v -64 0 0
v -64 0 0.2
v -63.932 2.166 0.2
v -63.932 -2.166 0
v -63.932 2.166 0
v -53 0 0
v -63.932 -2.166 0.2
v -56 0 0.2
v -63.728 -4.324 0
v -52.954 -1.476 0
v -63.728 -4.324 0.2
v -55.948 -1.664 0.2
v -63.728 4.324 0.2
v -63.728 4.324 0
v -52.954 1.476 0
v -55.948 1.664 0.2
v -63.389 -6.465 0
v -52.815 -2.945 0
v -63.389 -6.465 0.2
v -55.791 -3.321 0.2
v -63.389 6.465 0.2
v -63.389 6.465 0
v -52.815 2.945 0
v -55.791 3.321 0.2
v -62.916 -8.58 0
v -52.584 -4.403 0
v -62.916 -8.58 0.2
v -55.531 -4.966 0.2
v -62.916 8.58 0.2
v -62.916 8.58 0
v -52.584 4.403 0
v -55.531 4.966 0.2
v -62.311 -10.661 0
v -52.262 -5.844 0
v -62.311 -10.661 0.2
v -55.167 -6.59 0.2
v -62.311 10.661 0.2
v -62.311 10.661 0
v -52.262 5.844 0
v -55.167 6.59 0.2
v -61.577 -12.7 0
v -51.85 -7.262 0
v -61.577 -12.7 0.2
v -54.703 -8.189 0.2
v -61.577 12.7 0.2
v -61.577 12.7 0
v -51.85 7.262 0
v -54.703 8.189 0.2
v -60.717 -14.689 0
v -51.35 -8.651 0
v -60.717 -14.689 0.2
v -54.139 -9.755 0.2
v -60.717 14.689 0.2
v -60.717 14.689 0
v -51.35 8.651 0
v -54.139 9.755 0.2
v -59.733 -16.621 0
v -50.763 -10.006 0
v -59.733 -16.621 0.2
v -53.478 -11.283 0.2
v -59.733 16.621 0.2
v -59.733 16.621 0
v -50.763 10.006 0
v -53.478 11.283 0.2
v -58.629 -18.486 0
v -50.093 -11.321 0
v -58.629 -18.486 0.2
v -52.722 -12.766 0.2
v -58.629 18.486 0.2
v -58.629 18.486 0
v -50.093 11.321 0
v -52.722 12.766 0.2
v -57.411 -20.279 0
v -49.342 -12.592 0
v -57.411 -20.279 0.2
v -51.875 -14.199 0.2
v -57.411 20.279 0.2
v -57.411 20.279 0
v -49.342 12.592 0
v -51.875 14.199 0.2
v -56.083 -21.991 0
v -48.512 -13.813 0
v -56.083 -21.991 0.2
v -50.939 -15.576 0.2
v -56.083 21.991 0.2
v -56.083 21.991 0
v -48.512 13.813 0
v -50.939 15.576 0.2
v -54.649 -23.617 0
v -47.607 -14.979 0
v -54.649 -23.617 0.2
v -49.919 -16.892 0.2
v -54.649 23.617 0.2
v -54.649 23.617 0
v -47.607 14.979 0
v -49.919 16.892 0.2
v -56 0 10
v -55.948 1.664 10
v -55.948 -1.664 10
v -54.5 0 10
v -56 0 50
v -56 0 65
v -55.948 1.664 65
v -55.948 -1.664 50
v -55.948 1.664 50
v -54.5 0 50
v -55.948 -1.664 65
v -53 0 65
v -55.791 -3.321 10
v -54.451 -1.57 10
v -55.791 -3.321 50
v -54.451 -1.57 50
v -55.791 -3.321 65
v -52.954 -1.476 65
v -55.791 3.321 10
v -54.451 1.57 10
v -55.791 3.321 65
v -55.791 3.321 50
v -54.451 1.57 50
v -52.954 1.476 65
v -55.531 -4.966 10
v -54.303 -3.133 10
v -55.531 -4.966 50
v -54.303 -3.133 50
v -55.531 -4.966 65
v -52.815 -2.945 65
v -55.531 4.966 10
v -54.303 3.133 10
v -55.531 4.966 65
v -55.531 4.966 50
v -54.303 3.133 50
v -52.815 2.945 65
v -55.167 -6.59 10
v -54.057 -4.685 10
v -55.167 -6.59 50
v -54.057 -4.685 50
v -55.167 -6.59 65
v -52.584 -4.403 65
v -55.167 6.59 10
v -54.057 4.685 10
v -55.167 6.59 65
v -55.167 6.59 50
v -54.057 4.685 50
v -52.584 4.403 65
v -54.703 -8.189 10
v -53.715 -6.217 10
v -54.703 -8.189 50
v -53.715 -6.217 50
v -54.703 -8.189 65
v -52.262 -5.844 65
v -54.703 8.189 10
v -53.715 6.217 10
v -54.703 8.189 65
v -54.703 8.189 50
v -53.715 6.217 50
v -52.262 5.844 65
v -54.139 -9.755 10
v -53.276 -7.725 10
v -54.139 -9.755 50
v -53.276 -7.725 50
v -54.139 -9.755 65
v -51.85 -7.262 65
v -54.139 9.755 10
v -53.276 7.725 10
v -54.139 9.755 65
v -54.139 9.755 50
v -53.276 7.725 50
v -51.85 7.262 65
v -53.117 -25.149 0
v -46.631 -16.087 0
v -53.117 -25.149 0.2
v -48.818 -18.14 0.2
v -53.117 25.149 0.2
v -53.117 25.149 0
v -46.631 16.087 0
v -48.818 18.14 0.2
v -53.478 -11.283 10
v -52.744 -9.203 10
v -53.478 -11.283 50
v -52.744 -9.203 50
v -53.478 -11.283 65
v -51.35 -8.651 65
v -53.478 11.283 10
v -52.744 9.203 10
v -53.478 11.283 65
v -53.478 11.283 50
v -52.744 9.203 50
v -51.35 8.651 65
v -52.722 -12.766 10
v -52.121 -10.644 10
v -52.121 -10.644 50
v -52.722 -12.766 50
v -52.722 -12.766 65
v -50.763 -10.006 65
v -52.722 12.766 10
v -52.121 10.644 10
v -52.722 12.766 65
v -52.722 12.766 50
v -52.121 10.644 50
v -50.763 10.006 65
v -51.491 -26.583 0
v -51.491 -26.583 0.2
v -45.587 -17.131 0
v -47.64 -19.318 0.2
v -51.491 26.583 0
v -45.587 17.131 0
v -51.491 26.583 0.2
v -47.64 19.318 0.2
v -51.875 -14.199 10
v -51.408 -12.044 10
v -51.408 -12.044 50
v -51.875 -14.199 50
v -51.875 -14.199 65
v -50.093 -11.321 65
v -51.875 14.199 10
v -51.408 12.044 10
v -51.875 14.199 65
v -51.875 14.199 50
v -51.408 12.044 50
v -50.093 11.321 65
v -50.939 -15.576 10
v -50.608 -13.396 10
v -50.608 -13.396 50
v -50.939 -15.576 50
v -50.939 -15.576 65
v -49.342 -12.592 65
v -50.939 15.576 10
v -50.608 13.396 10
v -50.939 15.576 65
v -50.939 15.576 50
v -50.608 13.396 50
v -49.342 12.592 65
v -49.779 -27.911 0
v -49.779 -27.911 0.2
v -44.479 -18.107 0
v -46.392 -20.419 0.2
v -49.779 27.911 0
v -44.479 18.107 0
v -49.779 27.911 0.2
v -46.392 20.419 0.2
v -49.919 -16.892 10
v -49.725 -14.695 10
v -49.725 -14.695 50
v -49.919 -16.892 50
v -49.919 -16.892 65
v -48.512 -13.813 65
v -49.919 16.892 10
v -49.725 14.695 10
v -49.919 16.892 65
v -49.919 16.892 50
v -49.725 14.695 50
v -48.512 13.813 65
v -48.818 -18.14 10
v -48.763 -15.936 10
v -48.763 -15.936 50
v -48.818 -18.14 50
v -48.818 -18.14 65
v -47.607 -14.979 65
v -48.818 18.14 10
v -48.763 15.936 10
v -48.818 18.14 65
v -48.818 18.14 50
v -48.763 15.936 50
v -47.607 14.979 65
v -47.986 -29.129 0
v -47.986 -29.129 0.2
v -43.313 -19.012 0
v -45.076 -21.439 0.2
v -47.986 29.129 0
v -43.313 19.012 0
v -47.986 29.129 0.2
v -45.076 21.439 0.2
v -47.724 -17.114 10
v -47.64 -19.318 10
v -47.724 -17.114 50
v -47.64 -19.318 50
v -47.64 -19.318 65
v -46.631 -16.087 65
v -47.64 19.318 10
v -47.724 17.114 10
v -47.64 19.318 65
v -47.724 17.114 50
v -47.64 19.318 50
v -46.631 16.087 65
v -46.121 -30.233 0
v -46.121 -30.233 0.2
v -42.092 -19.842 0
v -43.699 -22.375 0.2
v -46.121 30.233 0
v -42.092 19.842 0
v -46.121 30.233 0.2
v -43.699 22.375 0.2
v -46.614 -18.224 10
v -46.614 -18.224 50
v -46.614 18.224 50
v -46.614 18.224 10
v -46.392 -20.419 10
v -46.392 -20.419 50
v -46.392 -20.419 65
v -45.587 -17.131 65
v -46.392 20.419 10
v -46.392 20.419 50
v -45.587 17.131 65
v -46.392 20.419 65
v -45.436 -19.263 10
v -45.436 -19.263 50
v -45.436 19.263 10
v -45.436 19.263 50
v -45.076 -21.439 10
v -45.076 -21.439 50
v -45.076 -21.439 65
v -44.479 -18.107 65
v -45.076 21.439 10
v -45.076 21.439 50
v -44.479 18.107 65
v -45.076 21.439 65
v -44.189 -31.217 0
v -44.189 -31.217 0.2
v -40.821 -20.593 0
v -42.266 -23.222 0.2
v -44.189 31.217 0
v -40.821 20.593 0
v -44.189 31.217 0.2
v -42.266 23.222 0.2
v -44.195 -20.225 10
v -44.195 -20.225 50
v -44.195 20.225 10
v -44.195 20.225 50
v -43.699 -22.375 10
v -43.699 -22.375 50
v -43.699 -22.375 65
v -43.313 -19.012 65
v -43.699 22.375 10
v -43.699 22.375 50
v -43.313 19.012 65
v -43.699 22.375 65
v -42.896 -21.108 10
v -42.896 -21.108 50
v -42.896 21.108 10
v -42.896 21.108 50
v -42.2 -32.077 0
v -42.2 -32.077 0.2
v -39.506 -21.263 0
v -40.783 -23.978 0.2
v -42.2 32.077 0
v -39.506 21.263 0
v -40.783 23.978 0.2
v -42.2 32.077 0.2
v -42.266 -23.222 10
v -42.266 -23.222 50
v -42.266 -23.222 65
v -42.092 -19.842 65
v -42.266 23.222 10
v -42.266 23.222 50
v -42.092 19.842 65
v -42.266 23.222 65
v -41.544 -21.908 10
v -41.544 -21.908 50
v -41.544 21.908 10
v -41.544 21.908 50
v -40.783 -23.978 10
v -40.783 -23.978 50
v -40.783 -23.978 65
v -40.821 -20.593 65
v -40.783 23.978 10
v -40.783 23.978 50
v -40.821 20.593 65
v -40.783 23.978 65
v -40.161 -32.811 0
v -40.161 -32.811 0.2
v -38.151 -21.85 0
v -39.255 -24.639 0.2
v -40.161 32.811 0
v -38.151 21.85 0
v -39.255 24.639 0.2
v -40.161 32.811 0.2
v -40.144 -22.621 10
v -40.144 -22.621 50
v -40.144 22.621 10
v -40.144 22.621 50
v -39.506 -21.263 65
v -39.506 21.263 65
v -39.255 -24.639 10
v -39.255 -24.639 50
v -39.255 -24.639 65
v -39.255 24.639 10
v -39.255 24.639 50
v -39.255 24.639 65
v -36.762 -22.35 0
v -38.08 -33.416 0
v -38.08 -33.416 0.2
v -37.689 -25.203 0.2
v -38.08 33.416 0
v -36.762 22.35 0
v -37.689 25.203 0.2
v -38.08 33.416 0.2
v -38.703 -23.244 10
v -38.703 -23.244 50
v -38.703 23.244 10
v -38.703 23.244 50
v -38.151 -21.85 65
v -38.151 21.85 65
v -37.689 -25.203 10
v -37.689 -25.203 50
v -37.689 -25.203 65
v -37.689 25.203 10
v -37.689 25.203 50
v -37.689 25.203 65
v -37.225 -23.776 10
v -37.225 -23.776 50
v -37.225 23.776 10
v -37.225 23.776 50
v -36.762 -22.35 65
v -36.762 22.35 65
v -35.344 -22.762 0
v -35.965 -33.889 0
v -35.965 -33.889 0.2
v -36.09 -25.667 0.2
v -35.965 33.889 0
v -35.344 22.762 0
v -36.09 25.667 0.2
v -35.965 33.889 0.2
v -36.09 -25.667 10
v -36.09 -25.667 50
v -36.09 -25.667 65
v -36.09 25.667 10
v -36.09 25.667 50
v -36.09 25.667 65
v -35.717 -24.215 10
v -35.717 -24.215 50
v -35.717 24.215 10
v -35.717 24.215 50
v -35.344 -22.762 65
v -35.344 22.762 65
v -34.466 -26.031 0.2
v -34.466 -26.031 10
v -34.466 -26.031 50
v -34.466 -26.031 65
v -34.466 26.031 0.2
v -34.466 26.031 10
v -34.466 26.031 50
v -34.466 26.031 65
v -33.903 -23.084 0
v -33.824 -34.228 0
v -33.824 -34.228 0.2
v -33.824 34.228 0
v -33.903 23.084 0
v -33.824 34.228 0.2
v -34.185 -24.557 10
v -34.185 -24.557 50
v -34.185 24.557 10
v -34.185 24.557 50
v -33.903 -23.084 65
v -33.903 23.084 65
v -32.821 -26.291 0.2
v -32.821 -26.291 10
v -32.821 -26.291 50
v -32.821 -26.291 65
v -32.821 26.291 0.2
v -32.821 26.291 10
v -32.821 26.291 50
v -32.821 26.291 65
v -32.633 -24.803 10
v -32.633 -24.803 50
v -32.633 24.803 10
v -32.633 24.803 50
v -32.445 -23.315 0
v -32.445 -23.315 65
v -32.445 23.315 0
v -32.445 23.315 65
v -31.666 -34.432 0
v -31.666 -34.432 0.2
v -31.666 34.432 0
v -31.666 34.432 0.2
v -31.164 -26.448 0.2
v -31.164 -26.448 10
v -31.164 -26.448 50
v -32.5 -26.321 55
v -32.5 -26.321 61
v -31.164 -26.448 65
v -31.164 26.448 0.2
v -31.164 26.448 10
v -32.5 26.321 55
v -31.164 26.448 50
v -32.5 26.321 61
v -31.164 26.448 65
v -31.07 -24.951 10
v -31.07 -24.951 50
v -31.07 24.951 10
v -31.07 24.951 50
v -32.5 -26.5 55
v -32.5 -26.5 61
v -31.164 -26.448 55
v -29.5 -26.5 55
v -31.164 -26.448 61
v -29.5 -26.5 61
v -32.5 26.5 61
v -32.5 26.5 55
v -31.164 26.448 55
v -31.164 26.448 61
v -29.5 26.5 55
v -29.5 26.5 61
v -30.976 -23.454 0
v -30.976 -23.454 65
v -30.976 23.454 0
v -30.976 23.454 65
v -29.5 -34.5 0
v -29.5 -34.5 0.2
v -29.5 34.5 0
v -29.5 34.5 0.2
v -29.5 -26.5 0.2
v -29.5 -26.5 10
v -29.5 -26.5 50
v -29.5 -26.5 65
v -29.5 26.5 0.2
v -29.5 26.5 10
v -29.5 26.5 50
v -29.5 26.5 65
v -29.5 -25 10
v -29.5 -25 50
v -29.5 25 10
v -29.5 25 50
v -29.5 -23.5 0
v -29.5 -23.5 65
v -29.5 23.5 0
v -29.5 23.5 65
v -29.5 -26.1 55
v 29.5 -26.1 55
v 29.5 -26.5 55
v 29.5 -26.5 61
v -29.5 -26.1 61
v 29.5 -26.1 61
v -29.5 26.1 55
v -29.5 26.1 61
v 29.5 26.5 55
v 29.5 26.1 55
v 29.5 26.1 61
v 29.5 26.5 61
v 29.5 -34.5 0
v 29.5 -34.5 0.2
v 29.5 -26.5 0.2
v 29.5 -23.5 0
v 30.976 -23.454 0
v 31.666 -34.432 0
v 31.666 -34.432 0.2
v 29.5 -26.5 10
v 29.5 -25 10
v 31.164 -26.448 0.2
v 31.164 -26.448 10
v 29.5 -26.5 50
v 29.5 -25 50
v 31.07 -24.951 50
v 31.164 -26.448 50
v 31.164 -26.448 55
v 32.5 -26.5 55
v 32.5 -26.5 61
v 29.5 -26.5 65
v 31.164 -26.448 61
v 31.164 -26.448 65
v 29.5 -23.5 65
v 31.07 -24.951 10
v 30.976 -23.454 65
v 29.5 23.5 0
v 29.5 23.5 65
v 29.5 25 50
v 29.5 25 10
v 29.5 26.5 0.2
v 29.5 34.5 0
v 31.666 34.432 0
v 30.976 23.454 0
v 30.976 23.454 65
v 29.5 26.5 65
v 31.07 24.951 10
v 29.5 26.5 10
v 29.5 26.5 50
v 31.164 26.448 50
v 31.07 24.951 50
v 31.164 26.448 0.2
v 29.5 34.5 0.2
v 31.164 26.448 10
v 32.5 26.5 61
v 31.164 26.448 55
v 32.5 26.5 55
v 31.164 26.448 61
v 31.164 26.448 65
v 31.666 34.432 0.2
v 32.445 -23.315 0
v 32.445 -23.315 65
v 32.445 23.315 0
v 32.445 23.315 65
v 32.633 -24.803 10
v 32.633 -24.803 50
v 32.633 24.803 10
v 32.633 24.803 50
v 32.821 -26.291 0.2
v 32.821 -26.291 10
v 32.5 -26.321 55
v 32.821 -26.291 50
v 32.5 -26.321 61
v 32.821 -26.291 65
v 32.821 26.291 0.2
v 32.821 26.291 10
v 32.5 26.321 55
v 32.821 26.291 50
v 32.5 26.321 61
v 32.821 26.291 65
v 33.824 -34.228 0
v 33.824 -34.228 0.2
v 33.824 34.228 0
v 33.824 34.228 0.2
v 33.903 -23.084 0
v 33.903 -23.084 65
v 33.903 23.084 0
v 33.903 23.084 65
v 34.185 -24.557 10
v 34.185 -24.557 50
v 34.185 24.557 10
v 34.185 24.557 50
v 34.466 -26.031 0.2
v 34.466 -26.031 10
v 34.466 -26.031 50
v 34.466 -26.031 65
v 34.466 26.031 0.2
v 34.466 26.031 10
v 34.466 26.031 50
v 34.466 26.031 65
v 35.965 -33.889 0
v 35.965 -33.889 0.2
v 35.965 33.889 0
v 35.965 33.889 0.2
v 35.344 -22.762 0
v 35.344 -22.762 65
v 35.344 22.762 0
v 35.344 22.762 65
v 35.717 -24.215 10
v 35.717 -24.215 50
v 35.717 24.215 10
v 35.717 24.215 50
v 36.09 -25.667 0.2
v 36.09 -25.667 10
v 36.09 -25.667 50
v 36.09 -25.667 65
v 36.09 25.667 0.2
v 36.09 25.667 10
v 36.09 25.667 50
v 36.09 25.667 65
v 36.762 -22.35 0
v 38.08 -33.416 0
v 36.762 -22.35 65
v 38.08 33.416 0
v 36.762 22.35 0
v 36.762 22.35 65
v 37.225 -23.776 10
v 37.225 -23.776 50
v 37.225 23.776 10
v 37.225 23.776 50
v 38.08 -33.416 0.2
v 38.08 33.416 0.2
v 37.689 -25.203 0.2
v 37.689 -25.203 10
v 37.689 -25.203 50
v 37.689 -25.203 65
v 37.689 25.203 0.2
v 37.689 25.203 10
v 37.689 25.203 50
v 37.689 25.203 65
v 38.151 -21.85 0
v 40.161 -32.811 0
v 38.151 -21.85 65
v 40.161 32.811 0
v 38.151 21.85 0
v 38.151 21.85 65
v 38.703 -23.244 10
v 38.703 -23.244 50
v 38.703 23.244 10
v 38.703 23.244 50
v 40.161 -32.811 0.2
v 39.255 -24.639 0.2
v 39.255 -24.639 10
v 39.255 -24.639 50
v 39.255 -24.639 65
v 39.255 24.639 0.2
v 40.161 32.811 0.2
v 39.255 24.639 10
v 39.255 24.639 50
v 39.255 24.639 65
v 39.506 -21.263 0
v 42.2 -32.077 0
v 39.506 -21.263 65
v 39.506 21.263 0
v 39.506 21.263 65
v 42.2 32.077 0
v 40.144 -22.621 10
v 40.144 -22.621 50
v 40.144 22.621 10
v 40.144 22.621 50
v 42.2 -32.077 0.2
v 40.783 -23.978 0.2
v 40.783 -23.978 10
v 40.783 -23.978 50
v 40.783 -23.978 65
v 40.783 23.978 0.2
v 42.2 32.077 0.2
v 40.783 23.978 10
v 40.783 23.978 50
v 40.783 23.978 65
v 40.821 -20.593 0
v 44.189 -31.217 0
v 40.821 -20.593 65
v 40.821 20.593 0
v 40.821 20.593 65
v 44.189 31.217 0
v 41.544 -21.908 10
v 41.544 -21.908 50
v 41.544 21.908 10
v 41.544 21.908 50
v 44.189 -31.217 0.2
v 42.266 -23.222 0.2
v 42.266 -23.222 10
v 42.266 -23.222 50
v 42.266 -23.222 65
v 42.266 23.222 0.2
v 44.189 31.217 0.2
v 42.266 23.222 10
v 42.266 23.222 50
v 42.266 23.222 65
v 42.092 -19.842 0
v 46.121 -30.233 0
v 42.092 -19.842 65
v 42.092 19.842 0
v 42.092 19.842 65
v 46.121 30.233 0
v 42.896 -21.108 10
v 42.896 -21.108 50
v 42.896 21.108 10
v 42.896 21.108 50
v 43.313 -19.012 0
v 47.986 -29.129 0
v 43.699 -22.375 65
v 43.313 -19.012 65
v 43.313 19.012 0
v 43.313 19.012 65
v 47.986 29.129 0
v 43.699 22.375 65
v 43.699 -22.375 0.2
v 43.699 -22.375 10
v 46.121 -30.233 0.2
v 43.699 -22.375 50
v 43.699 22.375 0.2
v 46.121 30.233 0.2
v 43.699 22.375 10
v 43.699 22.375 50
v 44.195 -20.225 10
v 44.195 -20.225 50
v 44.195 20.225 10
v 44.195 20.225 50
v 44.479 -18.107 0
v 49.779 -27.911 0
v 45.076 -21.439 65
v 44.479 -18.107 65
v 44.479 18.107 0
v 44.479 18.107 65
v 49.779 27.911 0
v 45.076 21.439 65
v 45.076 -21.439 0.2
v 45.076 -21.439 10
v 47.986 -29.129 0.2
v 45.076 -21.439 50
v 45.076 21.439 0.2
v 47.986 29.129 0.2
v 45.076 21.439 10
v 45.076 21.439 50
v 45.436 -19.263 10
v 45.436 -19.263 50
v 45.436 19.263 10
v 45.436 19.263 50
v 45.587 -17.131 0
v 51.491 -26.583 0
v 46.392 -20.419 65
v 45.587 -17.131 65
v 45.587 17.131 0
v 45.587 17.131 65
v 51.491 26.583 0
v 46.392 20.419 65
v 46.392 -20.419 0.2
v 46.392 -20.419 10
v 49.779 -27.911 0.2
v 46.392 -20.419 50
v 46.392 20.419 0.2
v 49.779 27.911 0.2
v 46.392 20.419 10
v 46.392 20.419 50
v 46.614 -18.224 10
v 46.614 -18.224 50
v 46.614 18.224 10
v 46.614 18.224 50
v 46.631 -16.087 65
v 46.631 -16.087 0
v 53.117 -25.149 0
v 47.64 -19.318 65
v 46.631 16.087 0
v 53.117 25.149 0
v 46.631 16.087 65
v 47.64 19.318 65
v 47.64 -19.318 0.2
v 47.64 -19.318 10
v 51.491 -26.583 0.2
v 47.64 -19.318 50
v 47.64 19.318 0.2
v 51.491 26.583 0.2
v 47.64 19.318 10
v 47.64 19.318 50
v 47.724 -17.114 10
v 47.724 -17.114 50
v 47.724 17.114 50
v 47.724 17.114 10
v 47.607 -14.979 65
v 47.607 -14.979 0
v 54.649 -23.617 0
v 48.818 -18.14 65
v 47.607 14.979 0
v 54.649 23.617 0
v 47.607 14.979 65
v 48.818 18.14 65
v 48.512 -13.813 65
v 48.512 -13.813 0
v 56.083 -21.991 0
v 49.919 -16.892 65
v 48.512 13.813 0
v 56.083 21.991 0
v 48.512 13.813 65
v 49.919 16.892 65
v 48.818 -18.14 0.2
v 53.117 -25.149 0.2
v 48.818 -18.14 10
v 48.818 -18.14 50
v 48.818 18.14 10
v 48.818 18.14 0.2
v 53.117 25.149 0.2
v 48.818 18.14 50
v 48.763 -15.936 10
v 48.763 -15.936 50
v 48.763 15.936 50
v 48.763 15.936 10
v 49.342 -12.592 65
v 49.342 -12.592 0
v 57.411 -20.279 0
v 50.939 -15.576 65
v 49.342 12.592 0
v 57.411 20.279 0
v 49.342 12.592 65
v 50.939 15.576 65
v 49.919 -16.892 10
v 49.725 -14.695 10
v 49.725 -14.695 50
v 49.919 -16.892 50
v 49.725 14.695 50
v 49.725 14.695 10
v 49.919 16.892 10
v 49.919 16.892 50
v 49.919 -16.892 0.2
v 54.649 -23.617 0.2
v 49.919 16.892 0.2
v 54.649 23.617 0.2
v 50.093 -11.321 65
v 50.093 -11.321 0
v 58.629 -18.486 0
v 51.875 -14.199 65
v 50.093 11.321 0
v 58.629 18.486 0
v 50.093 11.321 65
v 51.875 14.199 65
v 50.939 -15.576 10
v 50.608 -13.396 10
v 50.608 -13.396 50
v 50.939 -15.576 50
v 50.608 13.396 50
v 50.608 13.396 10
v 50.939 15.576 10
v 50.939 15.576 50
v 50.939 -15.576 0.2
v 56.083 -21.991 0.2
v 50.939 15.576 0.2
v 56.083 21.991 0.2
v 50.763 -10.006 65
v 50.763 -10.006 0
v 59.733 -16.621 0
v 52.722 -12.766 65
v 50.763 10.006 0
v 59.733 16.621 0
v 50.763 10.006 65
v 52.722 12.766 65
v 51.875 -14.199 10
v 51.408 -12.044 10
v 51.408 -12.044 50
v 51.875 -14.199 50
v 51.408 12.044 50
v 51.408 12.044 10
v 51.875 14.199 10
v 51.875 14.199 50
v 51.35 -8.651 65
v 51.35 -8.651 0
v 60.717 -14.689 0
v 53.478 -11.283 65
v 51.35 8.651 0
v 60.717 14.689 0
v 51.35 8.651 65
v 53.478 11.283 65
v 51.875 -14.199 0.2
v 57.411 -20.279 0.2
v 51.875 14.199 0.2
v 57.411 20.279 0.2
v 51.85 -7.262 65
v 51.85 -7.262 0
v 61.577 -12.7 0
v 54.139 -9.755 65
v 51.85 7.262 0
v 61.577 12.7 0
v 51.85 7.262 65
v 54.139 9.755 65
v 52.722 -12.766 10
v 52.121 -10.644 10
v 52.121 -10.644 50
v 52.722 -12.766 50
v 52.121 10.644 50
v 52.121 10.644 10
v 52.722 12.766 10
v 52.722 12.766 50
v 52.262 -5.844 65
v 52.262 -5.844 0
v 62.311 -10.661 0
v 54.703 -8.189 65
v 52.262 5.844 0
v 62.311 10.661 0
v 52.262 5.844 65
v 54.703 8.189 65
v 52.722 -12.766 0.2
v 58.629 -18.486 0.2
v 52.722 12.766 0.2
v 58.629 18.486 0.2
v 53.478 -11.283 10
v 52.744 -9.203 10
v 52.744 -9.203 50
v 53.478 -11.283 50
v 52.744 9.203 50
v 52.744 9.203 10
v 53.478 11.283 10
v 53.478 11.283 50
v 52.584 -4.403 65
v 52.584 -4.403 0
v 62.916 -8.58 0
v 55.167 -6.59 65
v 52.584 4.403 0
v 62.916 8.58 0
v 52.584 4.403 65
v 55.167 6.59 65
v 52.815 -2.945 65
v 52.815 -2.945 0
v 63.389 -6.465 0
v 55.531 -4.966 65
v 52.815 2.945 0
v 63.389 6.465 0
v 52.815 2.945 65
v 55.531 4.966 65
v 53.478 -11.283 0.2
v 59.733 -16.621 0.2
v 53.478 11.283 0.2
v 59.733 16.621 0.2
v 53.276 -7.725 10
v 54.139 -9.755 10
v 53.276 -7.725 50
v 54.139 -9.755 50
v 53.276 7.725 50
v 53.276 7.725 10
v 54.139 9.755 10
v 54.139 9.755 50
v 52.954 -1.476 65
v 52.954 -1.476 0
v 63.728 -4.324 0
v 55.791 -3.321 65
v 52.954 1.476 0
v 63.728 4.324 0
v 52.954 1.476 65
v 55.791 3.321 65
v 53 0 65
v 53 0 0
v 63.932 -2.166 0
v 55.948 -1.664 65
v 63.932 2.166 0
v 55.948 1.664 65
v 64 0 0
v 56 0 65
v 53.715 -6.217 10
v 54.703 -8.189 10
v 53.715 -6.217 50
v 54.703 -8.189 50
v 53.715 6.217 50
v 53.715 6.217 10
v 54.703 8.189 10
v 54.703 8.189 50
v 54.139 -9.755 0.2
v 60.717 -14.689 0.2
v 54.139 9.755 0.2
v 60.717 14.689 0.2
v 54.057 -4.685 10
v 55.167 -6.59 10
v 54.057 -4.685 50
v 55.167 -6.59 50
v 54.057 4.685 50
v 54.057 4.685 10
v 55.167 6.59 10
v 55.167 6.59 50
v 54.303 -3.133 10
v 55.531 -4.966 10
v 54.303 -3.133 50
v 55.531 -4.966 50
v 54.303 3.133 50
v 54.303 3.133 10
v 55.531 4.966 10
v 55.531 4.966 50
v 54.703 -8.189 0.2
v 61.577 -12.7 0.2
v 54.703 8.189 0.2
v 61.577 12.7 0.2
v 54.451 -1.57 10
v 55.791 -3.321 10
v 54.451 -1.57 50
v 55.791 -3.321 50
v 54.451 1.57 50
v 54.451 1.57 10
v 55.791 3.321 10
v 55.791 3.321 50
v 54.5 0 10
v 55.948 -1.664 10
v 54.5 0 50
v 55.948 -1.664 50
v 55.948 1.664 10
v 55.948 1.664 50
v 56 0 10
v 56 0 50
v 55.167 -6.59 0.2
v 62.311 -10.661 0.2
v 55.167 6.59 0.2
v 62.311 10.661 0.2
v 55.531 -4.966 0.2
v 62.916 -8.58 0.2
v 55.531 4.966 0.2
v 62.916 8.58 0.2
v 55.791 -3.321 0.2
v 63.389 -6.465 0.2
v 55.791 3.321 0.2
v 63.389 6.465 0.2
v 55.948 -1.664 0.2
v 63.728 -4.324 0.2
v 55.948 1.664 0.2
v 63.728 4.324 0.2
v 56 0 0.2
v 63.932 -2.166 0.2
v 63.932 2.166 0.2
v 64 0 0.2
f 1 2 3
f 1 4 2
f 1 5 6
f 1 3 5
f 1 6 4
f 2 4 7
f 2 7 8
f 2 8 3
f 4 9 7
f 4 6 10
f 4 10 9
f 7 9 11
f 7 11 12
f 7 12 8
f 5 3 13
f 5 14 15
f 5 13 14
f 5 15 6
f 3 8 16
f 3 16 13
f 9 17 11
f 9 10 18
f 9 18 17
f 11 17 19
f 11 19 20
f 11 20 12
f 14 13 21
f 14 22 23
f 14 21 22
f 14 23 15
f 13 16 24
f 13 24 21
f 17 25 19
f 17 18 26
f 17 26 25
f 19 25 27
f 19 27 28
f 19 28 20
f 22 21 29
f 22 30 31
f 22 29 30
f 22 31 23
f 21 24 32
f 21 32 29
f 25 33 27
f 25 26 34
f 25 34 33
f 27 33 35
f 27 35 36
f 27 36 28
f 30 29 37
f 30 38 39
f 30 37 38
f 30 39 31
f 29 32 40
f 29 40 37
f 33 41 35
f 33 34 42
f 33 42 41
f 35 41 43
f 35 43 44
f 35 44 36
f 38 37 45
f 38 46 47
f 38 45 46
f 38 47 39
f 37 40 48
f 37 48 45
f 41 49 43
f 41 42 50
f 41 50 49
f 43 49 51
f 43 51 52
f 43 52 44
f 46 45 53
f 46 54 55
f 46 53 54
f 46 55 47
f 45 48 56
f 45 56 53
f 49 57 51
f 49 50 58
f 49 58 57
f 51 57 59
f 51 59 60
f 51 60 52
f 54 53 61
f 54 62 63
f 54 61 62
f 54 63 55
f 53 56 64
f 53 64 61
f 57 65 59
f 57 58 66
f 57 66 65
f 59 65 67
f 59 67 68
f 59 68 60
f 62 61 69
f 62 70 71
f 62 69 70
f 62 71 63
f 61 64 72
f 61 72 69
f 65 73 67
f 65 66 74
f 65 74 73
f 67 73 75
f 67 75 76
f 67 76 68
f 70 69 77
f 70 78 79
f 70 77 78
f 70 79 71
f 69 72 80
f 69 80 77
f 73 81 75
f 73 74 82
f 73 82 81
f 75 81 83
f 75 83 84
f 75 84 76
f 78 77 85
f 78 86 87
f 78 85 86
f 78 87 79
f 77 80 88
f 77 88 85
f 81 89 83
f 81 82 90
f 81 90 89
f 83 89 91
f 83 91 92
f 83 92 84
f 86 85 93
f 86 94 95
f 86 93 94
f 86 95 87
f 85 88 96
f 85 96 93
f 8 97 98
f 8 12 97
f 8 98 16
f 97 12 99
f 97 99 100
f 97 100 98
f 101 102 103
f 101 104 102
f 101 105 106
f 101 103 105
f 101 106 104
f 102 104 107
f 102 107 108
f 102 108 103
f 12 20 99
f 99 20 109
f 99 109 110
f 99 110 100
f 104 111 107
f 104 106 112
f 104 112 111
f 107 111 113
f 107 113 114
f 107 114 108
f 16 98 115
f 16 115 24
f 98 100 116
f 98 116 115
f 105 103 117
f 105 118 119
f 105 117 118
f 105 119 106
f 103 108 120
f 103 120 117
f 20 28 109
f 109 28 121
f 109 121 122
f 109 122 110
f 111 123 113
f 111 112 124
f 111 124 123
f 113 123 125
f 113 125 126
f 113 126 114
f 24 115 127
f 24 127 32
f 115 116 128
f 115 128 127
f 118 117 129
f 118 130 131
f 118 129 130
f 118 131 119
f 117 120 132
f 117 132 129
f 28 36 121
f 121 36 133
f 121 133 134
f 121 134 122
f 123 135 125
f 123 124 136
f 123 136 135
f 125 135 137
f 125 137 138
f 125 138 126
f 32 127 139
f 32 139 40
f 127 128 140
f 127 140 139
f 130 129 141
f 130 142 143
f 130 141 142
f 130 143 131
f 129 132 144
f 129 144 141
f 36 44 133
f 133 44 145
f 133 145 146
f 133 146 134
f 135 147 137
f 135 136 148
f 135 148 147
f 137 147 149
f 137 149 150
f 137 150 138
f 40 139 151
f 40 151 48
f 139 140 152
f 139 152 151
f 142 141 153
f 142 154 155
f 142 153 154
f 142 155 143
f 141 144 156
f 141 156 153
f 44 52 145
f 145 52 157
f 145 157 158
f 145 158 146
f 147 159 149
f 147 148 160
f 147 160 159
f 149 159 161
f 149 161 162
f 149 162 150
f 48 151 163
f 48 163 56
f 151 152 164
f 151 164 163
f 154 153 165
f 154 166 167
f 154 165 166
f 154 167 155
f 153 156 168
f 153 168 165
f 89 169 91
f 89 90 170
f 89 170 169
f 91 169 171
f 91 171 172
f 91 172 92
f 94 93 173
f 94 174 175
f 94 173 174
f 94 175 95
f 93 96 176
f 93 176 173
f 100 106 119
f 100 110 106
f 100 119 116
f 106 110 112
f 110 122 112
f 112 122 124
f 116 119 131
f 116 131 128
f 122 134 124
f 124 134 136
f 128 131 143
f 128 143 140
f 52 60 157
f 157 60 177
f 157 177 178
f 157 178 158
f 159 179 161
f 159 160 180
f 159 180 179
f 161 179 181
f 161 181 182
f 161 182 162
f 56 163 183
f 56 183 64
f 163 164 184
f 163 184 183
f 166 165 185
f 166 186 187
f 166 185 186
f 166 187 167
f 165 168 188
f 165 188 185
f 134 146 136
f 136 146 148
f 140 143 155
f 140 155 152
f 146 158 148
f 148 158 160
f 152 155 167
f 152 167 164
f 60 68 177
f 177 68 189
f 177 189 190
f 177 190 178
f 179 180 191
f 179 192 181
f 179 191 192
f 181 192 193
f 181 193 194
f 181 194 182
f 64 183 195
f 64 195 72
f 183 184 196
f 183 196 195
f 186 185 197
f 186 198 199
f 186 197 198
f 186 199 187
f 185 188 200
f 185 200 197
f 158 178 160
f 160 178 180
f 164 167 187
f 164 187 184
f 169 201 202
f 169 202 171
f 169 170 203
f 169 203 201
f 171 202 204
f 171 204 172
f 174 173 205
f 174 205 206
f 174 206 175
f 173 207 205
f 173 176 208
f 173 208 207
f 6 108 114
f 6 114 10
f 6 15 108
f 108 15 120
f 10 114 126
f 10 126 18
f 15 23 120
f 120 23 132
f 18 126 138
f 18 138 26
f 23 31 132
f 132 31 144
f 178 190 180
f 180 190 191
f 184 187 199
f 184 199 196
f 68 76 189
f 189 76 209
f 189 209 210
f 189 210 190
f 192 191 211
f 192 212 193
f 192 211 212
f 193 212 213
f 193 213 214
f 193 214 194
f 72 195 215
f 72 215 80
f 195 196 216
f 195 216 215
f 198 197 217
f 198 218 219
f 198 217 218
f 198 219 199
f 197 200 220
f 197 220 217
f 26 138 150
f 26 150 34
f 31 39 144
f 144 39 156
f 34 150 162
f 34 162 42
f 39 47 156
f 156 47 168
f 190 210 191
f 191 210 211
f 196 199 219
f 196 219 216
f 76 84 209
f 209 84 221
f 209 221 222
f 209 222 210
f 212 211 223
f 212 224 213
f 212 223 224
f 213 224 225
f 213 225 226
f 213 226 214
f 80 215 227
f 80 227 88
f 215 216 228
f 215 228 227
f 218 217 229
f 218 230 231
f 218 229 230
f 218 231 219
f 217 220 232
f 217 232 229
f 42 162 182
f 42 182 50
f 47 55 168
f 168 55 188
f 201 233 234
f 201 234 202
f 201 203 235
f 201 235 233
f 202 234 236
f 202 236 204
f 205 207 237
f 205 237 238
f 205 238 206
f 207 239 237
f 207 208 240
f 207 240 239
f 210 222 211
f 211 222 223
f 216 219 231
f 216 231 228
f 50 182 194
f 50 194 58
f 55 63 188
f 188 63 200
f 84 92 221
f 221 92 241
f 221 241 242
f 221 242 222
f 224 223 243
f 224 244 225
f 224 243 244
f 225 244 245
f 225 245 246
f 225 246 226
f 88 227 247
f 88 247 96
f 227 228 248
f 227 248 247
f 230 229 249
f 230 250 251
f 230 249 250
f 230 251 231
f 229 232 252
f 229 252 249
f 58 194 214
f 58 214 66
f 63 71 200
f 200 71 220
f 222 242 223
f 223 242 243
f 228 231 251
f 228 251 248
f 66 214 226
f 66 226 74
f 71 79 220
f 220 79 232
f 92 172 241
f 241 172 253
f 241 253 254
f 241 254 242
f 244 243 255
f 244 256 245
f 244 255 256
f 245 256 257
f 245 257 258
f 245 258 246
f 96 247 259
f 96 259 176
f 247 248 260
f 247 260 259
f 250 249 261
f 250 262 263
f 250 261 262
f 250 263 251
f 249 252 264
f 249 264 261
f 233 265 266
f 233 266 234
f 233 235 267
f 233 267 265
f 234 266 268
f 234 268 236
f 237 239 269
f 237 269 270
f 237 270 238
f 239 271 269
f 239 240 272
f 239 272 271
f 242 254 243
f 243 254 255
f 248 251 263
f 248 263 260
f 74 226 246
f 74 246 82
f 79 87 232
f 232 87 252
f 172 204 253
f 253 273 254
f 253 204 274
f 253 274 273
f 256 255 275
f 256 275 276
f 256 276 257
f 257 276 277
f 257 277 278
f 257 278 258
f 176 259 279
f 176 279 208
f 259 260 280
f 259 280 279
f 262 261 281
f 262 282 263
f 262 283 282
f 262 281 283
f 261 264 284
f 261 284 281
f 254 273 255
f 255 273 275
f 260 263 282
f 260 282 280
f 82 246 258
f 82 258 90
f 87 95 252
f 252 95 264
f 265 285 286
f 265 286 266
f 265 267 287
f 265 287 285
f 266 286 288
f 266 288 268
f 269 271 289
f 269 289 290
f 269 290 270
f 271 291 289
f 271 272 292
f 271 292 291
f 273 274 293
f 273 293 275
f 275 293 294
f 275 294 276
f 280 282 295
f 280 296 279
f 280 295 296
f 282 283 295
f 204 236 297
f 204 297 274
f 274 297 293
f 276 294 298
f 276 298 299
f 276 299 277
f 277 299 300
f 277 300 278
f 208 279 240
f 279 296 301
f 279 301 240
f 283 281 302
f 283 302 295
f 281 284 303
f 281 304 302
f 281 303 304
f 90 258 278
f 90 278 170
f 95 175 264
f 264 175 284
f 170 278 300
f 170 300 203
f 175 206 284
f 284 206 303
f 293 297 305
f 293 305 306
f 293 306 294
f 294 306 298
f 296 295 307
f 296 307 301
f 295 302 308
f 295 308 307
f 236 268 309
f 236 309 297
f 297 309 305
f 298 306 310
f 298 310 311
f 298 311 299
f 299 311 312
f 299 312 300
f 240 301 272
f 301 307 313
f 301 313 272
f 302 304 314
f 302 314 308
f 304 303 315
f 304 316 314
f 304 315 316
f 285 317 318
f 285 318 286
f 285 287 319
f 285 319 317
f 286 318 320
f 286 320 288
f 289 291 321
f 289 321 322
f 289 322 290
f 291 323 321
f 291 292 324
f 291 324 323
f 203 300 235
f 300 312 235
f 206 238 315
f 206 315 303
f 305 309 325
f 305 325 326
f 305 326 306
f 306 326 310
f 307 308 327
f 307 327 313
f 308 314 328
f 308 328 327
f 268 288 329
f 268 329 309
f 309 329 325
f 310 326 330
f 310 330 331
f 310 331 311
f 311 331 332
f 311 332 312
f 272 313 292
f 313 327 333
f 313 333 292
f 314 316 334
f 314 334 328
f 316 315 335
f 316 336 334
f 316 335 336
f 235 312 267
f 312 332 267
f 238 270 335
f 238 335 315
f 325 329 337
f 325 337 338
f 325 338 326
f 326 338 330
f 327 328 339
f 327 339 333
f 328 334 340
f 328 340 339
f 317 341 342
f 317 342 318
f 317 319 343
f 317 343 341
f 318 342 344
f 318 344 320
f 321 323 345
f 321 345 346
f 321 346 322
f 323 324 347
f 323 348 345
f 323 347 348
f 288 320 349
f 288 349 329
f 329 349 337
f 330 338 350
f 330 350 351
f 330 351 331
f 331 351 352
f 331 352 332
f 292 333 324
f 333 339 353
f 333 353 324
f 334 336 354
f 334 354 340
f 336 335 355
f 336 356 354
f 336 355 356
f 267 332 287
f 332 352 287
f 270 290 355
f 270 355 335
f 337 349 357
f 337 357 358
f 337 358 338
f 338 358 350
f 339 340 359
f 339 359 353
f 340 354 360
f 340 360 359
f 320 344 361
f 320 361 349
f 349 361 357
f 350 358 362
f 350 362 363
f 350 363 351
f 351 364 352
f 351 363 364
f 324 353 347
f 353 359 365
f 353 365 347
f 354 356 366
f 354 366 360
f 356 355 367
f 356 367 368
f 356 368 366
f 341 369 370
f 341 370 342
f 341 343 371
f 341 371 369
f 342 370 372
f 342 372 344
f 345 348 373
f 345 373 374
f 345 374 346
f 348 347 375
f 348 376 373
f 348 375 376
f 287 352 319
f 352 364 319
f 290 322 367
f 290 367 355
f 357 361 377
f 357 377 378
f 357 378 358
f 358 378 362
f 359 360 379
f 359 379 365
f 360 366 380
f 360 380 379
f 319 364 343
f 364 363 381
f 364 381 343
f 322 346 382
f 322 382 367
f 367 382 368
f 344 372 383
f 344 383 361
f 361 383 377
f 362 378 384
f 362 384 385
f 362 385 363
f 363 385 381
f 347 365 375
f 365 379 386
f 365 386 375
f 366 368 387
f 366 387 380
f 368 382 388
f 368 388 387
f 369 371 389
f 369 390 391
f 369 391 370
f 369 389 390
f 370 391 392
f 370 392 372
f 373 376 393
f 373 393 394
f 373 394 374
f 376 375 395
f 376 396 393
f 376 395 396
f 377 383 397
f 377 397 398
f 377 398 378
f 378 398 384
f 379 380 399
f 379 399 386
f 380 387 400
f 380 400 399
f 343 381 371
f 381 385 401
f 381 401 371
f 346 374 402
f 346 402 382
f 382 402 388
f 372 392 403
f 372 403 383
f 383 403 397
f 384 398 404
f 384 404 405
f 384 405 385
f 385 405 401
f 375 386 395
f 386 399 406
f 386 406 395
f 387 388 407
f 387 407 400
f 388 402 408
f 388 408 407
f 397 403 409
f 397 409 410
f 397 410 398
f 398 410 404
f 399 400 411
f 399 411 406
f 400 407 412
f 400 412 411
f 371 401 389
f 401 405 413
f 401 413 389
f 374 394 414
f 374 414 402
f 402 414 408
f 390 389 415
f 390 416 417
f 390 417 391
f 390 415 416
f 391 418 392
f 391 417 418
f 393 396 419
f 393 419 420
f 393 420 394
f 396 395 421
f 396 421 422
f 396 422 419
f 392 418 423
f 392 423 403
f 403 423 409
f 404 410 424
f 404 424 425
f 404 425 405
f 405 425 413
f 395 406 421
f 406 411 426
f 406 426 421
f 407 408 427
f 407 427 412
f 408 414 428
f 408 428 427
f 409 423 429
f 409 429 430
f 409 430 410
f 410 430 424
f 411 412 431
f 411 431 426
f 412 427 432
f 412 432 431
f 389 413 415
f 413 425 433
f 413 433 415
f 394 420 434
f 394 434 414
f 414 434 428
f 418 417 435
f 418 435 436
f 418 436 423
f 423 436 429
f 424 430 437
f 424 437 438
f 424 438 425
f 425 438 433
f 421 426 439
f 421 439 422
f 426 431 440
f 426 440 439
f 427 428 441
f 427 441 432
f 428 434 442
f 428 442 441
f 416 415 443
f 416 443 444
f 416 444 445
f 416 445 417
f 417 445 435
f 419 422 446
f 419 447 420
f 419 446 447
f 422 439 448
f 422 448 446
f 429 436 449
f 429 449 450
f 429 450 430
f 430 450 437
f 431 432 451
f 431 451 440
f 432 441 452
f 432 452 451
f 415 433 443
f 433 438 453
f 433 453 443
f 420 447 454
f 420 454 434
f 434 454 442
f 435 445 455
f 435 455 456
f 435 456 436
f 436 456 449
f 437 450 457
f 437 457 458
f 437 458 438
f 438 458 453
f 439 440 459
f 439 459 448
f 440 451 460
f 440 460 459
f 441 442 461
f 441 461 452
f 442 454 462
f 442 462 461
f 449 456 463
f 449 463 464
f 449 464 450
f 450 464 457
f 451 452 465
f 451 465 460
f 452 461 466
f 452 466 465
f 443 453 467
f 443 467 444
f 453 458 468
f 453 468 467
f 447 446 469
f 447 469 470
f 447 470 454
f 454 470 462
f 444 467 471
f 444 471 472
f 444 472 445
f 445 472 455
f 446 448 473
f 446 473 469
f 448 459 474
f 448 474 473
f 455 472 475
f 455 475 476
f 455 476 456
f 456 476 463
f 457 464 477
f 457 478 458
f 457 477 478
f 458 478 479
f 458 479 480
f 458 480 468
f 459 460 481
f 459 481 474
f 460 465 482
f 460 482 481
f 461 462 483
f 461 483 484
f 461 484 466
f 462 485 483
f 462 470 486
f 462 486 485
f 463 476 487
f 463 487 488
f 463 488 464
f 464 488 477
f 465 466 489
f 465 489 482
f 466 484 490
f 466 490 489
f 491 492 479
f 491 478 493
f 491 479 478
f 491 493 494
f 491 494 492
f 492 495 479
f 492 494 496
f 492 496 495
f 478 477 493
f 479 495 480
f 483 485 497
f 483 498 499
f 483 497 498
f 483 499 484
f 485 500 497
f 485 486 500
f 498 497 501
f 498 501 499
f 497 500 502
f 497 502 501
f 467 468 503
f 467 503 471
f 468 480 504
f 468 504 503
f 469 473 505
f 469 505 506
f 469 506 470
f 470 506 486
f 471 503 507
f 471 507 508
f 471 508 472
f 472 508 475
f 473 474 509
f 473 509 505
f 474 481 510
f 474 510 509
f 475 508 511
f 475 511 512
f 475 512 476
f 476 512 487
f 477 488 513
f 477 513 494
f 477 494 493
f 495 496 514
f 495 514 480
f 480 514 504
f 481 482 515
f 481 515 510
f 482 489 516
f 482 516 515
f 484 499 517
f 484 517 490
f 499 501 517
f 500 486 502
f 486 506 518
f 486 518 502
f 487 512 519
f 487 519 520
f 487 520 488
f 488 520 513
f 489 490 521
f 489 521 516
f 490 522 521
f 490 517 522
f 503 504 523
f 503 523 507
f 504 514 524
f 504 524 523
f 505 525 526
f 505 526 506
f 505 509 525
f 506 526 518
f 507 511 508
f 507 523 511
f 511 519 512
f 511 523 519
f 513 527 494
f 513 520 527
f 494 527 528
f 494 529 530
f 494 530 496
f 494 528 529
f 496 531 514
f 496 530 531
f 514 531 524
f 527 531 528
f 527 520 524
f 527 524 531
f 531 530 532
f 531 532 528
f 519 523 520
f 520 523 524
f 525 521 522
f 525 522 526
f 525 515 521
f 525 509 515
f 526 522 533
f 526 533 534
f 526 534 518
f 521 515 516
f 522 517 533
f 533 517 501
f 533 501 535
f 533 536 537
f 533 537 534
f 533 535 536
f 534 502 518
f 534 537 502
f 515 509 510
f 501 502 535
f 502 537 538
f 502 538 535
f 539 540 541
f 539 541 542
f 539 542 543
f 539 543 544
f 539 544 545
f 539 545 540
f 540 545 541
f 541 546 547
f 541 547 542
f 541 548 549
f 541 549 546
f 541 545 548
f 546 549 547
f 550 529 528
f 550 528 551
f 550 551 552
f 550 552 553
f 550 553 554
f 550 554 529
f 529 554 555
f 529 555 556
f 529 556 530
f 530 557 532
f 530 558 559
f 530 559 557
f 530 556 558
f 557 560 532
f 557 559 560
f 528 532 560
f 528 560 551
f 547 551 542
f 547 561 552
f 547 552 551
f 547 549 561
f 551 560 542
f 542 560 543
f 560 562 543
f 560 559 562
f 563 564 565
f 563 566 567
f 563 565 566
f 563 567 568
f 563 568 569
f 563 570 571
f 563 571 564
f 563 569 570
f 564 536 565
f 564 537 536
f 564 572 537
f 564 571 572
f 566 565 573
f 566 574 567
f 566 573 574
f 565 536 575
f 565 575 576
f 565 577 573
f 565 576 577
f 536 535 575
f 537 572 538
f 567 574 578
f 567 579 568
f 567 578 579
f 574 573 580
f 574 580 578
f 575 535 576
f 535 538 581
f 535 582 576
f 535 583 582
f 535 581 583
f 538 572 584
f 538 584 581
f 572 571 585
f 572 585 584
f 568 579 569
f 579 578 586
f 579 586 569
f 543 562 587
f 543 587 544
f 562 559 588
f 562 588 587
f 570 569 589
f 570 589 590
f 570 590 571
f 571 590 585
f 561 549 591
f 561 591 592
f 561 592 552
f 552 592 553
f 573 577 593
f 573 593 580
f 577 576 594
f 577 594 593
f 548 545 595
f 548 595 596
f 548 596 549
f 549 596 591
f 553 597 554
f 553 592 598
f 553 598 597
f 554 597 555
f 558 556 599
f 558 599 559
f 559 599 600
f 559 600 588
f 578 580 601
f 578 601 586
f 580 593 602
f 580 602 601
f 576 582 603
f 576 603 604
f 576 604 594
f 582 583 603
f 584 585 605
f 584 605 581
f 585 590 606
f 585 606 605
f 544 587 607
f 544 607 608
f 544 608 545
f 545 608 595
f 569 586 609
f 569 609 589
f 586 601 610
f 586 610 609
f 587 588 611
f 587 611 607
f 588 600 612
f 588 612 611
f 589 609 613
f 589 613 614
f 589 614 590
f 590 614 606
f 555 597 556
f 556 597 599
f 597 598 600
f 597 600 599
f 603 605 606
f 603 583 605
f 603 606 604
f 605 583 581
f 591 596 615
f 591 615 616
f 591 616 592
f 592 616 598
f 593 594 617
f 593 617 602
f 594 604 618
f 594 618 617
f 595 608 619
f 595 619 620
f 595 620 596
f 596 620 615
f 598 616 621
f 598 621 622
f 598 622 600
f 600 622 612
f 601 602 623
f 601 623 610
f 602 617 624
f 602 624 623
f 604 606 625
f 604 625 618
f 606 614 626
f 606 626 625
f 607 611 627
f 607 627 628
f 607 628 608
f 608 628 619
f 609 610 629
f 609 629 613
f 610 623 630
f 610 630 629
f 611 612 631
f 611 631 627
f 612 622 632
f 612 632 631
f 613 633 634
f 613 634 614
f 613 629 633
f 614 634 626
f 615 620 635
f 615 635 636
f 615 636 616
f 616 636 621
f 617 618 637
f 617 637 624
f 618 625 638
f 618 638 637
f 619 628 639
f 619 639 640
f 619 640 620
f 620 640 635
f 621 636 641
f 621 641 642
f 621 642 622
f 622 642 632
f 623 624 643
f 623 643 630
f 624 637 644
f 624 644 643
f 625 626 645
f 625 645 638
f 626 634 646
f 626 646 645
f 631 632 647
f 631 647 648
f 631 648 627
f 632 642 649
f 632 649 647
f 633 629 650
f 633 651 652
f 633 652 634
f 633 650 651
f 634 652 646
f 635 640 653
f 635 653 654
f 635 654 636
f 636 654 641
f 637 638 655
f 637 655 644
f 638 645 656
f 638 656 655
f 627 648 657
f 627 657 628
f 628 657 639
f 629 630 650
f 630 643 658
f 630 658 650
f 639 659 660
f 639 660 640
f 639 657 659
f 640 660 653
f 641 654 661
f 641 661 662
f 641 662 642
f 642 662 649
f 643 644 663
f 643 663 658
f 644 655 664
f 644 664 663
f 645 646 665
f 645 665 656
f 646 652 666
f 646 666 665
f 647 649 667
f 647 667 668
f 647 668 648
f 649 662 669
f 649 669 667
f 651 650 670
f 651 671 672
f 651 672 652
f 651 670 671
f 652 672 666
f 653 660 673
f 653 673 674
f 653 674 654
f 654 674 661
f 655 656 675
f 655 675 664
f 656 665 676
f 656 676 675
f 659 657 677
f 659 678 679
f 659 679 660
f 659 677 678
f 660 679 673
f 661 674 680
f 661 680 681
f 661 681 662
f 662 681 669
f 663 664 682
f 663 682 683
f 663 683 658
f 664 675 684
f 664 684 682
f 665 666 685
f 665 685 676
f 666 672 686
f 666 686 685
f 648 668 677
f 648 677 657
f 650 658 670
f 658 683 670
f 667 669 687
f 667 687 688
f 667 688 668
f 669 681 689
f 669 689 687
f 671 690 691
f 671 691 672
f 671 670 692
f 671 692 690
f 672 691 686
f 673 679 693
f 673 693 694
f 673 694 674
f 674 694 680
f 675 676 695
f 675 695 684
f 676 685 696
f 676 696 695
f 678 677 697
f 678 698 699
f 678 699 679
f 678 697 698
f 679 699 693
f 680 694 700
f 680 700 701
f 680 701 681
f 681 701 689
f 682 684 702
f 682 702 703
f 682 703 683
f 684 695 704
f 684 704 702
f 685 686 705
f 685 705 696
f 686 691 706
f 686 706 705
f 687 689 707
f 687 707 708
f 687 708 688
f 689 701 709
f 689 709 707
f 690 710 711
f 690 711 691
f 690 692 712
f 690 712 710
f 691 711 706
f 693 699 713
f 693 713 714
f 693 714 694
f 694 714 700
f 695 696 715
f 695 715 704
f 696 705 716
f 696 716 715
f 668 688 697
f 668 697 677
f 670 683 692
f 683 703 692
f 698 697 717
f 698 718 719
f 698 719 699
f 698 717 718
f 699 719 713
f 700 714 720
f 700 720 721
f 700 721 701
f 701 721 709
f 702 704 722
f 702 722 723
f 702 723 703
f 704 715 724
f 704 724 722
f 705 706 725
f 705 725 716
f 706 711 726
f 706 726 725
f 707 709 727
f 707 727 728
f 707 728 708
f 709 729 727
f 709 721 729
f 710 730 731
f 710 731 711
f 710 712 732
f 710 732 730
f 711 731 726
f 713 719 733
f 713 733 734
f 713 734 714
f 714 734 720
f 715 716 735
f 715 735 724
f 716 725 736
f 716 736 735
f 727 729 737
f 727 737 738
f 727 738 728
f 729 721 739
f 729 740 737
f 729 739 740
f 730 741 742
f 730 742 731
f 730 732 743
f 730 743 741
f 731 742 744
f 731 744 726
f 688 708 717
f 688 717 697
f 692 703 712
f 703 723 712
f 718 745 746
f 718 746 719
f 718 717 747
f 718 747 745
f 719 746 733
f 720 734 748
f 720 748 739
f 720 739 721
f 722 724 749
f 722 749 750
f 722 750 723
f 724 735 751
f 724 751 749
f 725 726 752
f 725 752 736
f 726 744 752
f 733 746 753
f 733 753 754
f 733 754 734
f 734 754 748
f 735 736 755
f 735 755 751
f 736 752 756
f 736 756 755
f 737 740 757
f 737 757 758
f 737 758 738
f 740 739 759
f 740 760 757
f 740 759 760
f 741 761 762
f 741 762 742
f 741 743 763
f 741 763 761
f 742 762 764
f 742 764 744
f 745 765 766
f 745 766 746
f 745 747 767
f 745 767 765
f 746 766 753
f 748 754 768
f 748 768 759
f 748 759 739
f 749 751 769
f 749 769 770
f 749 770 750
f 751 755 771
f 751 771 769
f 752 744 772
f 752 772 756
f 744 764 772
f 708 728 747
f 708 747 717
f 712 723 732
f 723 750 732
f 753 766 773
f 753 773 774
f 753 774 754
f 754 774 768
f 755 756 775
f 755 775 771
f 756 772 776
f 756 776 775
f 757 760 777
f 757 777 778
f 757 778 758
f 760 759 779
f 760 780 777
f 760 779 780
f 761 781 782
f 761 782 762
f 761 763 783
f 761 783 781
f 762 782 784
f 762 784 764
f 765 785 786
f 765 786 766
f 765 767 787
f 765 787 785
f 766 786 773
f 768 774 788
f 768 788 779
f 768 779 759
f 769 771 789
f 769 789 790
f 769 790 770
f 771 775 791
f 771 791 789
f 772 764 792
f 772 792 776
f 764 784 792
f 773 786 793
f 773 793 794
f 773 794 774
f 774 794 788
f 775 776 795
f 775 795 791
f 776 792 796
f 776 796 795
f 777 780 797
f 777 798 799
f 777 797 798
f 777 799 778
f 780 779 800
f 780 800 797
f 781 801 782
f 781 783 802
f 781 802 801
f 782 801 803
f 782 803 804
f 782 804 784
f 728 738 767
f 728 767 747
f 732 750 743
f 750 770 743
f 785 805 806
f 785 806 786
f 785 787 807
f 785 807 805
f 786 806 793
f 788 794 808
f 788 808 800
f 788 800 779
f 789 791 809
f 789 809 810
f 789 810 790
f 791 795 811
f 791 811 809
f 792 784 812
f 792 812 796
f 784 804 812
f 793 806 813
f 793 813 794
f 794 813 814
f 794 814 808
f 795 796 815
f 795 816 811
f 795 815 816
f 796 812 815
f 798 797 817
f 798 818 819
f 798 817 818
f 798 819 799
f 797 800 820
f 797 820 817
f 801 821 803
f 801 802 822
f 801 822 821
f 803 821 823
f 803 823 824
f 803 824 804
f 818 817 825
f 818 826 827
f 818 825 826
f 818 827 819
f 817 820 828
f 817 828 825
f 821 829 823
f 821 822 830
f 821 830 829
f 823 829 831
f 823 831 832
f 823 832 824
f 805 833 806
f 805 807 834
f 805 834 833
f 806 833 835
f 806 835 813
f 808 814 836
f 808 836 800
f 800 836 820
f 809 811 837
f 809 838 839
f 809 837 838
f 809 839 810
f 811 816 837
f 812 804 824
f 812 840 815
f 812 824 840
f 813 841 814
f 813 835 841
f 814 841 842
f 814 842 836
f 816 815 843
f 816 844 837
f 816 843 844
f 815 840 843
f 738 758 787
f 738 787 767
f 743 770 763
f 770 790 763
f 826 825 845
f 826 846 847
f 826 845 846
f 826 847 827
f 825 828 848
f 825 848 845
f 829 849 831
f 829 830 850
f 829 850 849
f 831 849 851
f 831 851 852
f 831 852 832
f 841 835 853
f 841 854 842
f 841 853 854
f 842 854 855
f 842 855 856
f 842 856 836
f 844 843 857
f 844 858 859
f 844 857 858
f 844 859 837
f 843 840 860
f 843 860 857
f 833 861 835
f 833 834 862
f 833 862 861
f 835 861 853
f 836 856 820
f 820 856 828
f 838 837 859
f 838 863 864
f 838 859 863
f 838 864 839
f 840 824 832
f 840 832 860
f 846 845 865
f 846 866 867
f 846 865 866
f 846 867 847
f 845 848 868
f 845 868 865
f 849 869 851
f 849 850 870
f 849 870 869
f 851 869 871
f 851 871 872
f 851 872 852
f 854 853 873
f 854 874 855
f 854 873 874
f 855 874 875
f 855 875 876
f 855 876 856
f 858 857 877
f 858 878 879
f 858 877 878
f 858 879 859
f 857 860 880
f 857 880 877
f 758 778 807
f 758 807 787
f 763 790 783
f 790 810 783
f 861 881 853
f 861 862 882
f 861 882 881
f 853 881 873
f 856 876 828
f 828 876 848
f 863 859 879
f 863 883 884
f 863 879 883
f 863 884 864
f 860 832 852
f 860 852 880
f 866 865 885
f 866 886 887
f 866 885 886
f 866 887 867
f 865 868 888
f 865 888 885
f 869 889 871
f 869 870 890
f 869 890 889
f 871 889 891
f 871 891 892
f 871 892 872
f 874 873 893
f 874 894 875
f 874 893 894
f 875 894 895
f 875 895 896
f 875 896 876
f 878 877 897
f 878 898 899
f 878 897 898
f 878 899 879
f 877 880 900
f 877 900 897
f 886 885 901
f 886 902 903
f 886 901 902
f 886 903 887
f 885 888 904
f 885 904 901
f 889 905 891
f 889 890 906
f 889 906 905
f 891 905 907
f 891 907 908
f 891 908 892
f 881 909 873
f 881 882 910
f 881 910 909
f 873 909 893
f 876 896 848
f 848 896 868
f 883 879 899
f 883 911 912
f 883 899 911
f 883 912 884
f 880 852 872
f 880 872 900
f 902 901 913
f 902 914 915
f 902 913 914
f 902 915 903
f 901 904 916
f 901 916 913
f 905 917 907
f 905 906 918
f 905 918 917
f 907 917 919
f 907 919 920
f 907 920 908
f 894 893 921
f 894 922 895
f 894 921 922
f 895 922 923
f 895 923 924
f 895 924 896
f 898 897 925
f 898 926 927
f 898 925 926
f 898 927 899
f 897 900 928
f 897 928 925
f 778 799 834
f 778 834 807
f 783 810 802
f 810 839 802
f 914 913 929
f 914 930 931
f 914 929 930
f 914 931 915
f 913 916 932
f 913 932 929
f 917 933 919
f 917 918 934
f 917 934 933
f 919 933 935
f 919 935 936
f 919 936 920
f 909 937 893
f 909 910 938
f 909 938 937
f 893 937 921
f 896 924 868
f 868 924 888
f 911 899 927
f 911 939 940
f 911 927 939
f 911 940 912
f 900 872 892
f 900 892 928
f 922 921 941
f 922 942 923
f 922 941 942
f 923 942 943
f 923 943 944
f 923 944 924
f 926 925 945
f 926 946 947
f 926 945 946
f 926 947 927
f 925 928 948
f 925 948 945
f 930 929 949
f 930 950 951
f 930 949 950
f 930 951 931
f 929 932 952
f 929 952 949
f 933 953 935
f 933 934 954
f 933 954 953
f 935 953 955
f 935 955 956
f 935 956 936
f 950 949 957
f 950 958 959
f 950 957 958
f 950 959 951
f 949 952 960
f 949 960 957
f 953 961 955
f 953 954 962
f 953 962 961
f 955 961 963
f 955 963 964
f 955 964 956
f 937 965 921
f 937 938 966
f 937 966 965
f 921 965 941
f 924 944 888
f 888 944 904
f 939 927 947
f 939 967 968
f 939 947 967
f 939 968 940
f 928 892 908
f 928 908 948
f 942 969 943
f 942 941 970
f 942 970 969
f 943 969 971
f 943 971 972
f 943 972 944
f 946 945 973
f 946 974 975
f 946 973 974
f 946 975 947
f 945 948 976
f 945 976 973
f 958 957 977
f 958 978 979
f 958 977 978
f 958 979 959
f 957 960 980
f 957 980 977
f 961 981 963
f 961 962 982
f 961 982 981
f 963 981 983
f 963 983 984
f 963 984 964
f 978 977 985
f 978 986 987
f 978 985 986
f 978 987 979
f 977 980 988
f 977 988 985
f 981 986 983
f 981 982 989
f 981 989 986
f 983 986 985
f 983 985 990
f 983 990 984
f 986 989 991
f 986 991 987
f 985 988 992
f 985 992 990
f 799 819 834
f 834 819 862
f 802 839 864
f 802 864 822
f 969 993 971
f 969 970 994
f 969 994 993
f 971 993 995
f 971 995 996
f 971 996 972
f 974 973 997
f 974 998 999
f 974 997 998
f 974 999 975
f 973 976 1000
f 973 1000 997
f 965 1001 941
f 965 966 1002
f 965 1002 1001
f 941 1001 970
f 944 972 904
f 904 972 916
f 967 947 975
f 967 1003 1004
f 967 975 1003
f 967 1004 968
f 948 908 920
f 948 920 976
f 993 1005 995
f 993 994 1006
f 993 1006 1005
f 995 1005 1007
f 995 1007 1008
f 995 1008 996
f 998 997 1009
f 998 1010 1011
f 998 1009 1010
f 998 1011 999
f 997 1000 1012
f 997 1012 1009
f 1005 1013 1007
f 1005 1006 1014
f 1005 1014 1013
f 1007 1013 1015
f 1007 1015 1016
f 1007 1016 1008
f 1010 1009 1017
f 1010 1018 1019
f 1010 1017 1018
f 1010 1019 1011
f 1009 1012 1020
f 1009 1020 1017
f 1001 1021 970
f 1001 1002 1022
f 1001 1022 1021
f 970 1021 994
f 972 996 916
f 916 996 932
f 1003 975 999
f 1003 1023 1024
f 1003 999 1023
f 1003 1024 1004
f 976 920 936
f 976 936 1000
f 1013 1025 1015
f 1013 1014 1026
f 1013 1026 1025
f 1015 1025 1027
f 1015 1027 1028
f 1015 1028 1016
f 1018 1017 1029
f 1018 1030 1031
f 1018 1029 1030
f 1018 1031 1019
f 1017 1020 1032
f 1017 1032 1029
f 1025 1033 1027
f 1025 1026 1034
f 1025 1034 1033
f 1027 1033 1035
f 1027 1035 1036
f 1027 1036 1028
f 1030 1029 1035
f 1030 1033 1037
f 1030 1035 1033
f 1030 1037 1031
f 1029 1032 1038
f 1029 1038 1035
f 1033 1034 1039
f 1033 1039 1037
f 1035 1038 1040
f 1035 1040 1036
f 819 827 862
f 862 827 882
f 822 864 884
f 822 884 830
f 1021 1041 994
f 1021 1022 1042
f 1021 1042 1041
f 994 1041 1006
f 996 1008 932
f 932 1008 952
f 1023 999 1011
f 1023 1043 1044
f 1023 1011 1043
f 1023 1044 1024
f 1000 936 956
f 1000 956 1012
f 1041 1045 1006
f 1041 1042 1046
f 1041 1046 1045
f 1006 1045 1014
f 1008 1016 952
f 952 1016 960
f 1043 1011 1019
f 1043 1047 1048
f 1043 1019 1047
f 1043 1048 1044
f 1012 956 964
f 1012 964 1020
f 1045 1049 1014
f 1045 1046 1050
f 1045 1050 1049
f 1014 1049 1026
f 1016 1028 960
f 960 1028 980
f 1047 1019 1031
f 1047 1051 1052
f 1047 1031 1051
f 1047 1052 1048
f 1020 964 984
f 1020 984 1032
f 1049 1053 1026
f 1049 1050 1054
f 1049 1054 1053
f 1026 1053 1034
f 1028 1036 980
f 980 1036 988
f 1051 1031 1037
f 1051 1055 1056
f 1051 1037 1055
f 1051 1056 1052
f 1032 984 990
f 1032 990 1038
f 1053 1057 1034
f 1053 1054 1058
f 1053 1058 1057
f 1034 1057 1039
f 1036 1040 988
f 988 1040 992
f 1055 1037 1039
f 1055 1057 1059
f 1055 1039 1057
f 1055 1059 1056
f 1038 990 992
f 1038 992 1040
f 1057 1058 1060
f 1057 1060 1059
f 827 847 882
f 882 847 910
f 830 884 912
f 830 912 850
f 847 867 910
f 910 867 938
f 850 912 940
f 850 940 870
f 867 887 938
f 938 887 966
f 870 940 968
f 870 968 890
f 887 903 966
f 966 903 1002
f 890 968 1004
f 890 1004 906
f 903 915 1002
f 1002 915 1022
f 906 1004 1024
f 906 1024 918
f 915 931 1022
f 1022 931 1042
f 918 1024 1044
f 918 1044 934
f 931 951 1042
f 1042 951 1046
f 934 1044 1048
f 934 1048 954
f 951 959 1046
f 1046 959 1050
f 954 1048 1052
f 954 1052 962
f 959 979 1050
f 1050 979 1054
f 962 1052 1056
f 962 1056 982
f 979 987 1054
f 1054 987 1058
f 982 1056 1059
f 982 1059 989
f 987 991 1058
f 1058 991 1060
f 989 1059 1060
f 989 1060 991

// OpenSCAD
// ========================================================
// The Handy 原廠軟杯專屬 - 【內徑 47mm 舒適避讓版·精準 40mm 槽·內建 Brim】
// ========================================================

part_to_show = "ALL_SEPARATED"; 

$fn = 100; // 圓弧精細度
overlap = 0.05; 

// --- 【全新 47mm 舒適版尺寸參數】 ---
sleeve_h       = 65;    // 總高度：10 (下) + 40 (槽) + 15 (上) = 65mm
sleeve_inner_d = 47;    // 1. 內膽全新內徑 -> 47mm (留出緩衝空間，絕不擠壓變形)
sleeve_outer_d = 53;    // 外殼外徑同步調整 -> 53mm (維持 3mm 剛性牆厚)

// --- 【內建 Brim 參數】 ---
brim_thickness = 0.2;   // 0.2mm 單層厚度，好印好撕
brim_width     = 8;     // 裙邊寬度 8mm

// ========================================================
// 子模組：帶有 40mm 低重心精準槽的舒適半圓筒
// ========================================================
module sleeve_holder_half() {
    difference() {
        // 主杯殼外軀
        cylinder(h = sleeve_h, d = sleeve_outer_d, center = false);
        
        // 內部中空 (直徑 47mm)
        translate([0, 0, -1]) 
            cylinder(h = sleeve_h + 2, d = sleeve_inner_d, center = false);
        
        // 【精準綁帶定位槽：下高度 10mm 開始，槽寬 40mm】
        // 高度區區間為 10mm 到 50mm，上方留下 15mm 的上高度
        translate([0, 0, 10])
            difference() {
                cylinder(h = 40, d = sleeve_outer_d + 2, center = false);
                cylinder(h = 40, d = sleeve_outer_d - 3, center = false); // 內陷 1.5mm
            }
            
        // 切除另一半
        translate([-sleeve_outer_d, -sleeve_outer_d, -1]) 
            cube([sleeve_outer_d, sleeve_outer_d * 2, sleeve_h + 2]);
    }
}

// ========================================================
// 子模組：半圓形 Brim 裙邊 (同步適應 53mm 外徑)
// ========================================================
module half_brim() {
    difference() {
        cylinder(h = brim_thickness, d = sleeve_outer_d + (brim_width * 2), center = false);
        translate([0, 0, -0.1])
            cylinder(h = brim_thickness + 0.2, d = sleeve_inner_d, center = false);
        translate([-(sleeve_outer_d + brim_width * 2), -(sleeve_outer_d + brim_width * 2), -0.1])
            cube([(sleeve_outer_d + brim_width * 2), (sleeve_outer_d + brim_width * 2) * 2, brim_thickness + 0.2]);
    }
}

// ========================================================
// 子模組：帶有內建裙邊的完全體半個杯殼
// ========================================================
module sleeve_half_with_brim() {
    union() {
        sleeve_holder_half();
        half_brim(); 
    }
}

// ========================================================
// 最終生產排版輸出
// ========================================================
if (part_to_show == "LEFT") {
    sleeve_half_with_brim();
} 
else if (part_to_show == "RIGHT") {
    mirror([1, 0, 0]) sleeve_half_with_brim();
} 
else {
    // 【A1 mini 緊湊一盤流 - 47mm 優化排版】
    union() {
        // 1. 左半杯殼 + 裙邊 (精準平移至 X = -29.5)
        translate([-29.5, 0, 0]) rotate([0, 0, 180]) color("Cyan") sleeve_half_with_brim();
        
        // 2. 右半杯殼 + 裙邊 (精準平移至 X = 29.5)
        translate([29.5, 0, 0]) rotate([0, 0, -180]) color("LightRichBlue") mirror([1, 0, 0]) sleeve_half_with_brim();
        
        // 3. 【紅色防倒連體加固橋】（跨距優化至 65mm）
        color("Red") {
            // 頂部防倒橋 (Z = 55mm，完美黏在最上方的 15mm 平整外牆上)
            translate([-32.5, -sleeve_outer_d/2, 55]) cube([65, 0.4, 6]);
            translate([-32.5, sleeve_outer_d/2 - 0.4, 55]) cube([65, 0.4, 6]);
        }
    }
}
